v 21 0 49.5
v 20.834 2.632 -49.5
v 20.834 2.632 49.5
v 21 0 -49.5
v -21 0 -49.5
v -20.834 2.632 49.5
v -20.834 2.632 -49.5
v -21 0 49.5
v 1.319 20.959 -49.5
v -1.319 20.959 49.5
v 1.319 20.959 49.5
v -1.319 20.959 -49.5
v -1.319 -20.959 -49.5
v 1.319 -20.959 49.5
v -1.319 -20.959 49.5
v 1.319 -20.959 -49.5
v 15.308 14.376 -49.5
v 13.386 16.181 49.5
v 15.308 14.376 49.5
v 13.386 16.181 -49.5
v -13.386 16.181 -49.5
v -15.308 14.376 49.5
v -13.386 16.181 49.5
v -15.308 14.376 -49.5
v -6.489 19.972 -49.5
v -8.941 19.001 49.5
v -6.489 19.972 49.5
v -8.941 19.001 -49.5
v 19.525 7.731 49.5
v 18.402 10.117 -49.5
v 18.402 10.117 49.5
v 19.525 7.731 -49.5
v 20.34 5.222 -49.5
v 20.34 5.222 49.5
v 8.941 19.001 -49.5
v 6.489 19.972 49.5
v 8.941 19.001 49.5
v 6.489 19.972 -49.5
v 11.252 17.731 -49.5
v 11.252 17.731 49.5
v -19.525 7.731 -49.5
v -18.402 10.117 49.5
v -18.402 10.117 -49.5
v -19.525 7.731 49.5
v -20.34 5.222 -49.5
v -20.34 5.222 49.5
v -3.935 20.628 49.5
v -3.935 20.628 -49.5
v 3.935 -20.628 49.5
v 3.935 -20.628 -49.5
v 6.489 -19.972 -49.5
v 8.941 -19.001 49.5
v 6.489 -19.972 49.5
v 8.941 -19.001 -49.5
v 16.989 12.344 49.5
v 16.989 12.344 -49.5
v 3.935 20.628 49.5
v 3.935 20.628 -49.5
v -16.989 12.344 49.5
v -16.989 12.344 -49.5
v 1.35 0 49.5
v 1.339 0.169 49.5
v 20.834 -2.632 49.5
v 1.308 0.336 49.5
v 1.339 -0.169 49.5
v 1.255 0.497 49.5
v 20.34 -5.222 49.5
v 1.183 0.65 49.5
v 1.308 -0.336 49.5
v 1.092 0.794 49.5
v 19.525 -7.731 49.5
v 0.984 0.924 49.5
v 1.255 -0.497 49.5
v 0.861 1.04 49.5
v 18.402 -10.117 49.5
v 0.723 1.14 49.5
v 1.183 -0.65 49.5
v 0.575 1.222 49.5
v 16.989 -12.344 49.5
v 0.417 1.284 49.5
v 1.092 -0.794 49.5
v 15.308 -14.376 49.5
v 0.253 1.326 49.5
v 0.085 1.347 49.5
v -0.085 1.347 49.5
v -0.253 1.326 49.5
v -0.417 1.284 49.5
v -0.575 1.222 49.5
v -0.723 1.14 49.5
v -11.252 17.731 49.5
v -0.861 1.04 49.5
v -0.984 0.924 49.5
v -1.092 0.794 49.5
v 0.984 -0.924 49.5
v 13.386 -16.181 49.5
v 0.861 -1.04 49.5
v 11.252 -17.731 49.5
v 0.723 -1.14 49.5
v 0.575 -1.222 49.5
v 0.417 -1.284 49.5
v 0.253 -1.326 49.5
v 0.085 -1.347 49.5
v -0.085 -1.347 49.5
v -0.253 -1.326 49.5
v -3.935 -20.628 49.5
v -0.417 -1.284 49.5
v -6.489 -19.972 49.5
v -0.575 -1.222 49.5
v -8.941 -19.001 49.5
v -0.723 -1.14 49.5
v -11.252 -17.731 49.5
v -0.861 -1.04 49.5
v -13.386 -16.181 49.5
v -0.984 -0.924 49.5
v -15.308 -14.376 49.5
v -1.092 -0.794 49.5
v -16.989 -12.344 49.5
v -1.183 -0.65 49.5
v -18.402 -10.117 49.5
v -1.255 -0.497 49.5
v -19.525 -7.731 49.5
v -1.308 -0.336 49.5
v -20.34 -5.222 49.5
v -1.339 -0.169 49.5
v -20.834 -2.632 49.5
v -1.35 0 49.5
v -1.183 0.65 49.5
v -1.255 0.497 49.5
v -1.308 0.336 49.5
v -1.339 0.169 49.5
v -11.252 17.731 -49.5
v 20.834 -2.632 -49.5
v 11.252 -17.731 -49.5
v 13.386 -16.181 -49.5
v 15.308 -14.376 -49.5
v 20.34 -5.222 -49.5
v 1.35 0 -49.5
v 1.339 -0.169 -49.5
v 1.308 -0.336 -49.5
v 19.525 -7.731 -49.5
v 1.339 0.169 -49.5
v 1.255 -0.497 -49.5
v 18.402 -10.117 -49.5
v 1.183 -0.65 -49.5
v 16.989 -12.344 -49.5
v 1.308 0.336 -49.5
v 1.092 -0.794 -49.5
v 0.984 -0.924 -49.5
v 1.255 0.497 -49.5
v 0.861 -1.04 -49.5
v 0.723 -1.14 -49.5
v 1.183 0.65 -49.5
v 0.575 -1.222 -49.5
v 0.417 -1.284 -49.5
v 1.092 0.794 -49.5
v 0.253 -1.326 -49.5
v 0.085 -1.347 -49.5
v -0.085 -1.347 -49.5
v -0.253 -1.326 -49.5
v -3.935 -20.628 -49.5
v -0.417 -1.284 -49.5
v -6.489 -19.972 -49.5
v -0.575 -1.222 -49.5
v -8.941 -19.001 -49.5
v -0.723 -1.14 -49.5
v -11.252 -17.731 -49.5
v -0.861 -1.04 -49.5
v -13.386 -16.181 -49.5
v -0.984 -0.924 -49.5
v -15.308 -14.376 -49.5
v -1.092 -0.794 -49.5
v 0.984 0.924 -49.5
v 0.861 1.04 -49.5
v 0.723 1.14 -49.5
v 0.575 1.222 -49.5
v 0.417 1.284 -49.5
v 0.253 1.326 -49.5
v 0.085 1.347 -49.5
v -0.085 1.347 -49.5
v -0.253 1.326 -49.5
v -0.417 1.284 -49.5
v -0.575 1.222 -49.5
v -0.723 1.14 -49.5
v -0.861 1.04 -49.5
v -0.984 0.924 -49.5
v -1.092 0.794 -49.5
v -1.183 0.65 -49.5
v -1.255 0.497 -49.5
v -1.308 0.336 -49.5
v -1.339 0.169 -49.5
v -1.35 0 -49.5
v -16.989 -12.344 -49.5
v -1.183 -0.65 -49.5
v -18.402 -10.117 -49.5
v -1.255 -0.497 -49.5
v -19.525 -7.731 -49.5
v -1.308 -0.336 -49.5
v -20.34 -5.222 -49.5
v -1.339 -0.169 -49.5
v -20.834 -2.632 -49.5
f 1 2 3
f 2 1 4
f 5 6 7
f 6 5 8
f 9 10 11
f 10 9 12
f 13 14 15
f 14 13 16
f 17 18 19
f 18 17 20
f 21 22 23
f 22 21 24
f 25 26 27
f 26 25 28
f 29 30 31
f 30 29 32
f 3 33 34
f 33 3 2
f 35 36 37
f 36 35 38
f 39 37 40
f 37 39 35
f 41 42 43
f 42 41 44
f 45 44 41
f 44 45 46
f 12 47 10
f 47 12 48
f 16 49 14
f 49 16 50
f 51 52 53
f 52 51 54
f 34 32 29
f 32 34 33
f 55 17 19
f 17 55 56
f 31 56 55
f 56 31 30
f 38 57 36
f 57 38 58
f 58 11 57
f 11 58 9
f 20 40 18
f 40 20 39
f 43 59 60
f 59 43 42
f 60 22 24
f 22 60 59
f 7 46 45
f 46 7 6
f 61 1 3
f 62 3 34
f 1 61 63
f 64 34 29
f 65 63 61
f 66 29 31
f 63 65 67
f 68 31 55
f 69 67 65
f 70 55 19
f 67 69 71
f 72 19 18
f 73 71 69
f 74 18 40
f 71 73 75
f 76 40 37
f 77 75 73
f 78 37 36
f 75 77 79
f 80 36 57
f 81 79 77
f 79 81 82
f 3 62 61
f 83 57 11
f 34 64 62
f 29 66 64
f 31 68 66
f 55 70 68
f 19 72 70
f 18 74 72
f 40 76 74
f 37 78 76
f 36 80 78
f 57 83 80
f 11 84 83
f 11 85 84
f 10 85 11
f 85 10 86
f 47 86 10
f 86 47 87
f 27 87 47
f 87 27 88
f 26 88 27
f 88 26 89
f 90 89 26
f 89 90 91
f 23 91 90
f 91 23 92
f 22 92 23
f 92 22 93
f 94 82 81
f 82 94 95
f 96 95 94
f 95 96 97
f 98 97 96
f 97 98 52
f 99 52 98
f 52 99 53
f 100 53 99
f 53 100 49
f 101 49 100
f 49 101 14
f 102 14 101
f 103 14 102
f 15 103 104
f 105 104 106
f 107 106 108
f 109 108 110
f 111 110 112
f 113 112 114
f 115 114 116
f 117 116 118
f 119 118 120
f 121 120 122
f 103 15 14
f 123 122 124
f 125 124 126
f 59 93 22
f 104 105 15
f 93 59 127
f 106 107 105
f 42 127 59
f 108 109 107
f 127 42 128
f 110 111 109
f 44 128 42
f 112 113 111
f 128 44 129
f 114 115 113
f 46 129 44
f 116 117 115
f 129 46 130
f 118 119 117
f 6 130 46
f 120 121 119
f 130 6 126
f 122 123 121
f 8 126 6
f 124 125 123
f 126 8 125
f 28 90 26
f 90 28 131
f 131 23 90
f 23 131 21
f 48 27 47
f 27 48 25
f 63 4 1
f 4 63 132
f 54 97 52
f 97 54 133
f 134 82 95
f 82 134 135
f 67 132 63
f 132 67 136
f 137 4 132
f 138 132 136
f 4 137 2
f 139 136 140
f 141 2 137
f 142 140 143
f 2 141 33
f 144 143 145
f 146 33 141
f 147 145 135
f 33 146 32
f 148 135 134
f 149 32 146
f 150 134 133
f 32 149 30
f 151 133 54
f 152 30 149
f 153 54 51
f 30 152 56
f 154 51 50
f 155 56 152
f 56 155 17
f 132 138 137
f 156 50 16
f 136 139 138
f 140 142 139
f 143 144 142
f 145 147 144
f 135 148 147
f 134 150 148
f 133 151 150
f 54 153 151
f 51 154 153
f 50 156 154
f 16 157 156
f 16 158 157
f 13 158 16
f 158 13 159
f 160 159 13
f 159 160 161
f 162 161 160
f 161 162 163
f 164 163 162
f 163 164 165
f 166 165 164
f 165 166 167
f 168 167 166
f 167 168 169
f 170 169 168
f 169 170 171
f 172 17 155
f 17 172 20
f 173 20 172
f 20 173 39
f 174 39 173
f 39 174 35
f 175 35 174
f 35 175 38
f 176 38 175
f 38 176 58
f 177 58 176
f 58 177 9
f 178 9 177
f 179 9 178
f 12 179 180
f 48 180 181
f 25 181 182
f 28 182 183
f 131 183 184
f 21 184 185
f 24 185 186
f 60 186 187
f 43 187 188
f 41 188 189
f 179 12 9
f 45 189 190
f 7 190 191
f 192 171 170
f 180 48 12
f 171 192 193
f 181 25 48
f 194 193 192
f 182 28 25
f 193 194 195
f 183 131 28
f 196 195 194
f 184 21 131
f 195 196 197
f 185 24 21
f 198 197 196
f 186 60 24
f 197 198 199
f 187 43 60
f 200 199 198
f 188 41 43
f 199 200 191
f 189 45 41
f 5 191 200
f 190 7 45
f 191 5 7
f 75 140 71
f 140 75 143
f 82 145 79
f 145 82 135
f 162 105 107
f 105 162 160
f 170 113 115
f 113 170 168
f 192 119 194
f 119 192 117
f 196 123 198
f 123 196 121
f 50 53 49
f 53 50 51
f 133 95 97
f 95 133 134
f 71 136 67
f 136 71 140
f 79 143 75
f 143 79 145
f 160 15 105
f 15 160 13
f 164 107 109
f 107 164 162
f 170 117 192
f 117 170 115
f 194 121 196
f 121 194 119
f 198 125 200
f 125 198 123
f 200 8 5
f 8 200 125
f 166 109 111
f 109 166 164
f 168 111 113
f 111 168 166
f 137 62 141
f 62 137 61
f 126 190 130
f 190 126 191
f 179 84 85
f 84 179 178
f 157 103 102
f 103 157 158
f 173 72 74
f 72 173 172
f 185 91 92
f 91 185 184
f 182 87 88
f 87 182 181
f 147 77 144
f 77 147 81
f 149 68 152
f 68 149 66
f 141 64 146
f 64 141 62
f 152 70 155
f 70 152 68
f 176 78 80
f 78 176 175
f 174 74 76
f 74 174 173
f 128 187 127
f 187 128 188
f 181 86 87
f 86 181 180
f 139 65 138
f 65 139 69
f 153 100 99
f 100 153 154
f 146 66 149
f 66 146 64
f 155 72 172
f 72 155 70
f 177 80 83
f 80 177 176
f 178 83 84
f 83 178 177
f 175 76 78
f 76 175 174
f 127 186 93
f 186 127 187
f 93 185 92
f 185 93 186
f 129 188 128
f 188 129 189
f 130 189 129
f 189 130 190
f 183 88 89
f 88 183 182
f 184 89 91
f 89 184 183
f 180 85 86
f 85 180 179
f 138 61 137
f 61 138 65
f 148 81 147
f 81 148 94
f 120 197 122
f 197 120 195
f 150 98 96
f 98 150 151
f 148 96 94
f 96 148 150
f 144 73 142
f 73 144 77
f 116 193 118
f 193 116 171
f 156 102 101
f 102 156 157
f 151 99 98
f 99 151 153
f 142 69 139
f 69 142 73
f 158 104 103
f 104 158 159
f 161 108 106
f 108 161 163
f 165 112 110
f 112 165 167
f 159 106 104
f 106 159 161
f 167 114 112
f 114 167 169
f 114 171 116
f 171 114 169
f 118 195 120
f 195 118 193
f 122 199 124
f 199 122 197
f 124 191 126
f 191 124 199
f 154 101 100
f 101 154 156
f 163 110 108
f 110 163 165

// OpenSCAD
$fn = 50;


difference() {
	union() {
		translate(v = [0, 0, -49.5000000000]) {
			cylinder(h = 99, r = 21.0000000000);
		}
	}
	union() {
		translate(v = [0, 0, -100.0000000000]) {
			cylinder(h = 200, r = 1.3500000000);
		}
	}
}
